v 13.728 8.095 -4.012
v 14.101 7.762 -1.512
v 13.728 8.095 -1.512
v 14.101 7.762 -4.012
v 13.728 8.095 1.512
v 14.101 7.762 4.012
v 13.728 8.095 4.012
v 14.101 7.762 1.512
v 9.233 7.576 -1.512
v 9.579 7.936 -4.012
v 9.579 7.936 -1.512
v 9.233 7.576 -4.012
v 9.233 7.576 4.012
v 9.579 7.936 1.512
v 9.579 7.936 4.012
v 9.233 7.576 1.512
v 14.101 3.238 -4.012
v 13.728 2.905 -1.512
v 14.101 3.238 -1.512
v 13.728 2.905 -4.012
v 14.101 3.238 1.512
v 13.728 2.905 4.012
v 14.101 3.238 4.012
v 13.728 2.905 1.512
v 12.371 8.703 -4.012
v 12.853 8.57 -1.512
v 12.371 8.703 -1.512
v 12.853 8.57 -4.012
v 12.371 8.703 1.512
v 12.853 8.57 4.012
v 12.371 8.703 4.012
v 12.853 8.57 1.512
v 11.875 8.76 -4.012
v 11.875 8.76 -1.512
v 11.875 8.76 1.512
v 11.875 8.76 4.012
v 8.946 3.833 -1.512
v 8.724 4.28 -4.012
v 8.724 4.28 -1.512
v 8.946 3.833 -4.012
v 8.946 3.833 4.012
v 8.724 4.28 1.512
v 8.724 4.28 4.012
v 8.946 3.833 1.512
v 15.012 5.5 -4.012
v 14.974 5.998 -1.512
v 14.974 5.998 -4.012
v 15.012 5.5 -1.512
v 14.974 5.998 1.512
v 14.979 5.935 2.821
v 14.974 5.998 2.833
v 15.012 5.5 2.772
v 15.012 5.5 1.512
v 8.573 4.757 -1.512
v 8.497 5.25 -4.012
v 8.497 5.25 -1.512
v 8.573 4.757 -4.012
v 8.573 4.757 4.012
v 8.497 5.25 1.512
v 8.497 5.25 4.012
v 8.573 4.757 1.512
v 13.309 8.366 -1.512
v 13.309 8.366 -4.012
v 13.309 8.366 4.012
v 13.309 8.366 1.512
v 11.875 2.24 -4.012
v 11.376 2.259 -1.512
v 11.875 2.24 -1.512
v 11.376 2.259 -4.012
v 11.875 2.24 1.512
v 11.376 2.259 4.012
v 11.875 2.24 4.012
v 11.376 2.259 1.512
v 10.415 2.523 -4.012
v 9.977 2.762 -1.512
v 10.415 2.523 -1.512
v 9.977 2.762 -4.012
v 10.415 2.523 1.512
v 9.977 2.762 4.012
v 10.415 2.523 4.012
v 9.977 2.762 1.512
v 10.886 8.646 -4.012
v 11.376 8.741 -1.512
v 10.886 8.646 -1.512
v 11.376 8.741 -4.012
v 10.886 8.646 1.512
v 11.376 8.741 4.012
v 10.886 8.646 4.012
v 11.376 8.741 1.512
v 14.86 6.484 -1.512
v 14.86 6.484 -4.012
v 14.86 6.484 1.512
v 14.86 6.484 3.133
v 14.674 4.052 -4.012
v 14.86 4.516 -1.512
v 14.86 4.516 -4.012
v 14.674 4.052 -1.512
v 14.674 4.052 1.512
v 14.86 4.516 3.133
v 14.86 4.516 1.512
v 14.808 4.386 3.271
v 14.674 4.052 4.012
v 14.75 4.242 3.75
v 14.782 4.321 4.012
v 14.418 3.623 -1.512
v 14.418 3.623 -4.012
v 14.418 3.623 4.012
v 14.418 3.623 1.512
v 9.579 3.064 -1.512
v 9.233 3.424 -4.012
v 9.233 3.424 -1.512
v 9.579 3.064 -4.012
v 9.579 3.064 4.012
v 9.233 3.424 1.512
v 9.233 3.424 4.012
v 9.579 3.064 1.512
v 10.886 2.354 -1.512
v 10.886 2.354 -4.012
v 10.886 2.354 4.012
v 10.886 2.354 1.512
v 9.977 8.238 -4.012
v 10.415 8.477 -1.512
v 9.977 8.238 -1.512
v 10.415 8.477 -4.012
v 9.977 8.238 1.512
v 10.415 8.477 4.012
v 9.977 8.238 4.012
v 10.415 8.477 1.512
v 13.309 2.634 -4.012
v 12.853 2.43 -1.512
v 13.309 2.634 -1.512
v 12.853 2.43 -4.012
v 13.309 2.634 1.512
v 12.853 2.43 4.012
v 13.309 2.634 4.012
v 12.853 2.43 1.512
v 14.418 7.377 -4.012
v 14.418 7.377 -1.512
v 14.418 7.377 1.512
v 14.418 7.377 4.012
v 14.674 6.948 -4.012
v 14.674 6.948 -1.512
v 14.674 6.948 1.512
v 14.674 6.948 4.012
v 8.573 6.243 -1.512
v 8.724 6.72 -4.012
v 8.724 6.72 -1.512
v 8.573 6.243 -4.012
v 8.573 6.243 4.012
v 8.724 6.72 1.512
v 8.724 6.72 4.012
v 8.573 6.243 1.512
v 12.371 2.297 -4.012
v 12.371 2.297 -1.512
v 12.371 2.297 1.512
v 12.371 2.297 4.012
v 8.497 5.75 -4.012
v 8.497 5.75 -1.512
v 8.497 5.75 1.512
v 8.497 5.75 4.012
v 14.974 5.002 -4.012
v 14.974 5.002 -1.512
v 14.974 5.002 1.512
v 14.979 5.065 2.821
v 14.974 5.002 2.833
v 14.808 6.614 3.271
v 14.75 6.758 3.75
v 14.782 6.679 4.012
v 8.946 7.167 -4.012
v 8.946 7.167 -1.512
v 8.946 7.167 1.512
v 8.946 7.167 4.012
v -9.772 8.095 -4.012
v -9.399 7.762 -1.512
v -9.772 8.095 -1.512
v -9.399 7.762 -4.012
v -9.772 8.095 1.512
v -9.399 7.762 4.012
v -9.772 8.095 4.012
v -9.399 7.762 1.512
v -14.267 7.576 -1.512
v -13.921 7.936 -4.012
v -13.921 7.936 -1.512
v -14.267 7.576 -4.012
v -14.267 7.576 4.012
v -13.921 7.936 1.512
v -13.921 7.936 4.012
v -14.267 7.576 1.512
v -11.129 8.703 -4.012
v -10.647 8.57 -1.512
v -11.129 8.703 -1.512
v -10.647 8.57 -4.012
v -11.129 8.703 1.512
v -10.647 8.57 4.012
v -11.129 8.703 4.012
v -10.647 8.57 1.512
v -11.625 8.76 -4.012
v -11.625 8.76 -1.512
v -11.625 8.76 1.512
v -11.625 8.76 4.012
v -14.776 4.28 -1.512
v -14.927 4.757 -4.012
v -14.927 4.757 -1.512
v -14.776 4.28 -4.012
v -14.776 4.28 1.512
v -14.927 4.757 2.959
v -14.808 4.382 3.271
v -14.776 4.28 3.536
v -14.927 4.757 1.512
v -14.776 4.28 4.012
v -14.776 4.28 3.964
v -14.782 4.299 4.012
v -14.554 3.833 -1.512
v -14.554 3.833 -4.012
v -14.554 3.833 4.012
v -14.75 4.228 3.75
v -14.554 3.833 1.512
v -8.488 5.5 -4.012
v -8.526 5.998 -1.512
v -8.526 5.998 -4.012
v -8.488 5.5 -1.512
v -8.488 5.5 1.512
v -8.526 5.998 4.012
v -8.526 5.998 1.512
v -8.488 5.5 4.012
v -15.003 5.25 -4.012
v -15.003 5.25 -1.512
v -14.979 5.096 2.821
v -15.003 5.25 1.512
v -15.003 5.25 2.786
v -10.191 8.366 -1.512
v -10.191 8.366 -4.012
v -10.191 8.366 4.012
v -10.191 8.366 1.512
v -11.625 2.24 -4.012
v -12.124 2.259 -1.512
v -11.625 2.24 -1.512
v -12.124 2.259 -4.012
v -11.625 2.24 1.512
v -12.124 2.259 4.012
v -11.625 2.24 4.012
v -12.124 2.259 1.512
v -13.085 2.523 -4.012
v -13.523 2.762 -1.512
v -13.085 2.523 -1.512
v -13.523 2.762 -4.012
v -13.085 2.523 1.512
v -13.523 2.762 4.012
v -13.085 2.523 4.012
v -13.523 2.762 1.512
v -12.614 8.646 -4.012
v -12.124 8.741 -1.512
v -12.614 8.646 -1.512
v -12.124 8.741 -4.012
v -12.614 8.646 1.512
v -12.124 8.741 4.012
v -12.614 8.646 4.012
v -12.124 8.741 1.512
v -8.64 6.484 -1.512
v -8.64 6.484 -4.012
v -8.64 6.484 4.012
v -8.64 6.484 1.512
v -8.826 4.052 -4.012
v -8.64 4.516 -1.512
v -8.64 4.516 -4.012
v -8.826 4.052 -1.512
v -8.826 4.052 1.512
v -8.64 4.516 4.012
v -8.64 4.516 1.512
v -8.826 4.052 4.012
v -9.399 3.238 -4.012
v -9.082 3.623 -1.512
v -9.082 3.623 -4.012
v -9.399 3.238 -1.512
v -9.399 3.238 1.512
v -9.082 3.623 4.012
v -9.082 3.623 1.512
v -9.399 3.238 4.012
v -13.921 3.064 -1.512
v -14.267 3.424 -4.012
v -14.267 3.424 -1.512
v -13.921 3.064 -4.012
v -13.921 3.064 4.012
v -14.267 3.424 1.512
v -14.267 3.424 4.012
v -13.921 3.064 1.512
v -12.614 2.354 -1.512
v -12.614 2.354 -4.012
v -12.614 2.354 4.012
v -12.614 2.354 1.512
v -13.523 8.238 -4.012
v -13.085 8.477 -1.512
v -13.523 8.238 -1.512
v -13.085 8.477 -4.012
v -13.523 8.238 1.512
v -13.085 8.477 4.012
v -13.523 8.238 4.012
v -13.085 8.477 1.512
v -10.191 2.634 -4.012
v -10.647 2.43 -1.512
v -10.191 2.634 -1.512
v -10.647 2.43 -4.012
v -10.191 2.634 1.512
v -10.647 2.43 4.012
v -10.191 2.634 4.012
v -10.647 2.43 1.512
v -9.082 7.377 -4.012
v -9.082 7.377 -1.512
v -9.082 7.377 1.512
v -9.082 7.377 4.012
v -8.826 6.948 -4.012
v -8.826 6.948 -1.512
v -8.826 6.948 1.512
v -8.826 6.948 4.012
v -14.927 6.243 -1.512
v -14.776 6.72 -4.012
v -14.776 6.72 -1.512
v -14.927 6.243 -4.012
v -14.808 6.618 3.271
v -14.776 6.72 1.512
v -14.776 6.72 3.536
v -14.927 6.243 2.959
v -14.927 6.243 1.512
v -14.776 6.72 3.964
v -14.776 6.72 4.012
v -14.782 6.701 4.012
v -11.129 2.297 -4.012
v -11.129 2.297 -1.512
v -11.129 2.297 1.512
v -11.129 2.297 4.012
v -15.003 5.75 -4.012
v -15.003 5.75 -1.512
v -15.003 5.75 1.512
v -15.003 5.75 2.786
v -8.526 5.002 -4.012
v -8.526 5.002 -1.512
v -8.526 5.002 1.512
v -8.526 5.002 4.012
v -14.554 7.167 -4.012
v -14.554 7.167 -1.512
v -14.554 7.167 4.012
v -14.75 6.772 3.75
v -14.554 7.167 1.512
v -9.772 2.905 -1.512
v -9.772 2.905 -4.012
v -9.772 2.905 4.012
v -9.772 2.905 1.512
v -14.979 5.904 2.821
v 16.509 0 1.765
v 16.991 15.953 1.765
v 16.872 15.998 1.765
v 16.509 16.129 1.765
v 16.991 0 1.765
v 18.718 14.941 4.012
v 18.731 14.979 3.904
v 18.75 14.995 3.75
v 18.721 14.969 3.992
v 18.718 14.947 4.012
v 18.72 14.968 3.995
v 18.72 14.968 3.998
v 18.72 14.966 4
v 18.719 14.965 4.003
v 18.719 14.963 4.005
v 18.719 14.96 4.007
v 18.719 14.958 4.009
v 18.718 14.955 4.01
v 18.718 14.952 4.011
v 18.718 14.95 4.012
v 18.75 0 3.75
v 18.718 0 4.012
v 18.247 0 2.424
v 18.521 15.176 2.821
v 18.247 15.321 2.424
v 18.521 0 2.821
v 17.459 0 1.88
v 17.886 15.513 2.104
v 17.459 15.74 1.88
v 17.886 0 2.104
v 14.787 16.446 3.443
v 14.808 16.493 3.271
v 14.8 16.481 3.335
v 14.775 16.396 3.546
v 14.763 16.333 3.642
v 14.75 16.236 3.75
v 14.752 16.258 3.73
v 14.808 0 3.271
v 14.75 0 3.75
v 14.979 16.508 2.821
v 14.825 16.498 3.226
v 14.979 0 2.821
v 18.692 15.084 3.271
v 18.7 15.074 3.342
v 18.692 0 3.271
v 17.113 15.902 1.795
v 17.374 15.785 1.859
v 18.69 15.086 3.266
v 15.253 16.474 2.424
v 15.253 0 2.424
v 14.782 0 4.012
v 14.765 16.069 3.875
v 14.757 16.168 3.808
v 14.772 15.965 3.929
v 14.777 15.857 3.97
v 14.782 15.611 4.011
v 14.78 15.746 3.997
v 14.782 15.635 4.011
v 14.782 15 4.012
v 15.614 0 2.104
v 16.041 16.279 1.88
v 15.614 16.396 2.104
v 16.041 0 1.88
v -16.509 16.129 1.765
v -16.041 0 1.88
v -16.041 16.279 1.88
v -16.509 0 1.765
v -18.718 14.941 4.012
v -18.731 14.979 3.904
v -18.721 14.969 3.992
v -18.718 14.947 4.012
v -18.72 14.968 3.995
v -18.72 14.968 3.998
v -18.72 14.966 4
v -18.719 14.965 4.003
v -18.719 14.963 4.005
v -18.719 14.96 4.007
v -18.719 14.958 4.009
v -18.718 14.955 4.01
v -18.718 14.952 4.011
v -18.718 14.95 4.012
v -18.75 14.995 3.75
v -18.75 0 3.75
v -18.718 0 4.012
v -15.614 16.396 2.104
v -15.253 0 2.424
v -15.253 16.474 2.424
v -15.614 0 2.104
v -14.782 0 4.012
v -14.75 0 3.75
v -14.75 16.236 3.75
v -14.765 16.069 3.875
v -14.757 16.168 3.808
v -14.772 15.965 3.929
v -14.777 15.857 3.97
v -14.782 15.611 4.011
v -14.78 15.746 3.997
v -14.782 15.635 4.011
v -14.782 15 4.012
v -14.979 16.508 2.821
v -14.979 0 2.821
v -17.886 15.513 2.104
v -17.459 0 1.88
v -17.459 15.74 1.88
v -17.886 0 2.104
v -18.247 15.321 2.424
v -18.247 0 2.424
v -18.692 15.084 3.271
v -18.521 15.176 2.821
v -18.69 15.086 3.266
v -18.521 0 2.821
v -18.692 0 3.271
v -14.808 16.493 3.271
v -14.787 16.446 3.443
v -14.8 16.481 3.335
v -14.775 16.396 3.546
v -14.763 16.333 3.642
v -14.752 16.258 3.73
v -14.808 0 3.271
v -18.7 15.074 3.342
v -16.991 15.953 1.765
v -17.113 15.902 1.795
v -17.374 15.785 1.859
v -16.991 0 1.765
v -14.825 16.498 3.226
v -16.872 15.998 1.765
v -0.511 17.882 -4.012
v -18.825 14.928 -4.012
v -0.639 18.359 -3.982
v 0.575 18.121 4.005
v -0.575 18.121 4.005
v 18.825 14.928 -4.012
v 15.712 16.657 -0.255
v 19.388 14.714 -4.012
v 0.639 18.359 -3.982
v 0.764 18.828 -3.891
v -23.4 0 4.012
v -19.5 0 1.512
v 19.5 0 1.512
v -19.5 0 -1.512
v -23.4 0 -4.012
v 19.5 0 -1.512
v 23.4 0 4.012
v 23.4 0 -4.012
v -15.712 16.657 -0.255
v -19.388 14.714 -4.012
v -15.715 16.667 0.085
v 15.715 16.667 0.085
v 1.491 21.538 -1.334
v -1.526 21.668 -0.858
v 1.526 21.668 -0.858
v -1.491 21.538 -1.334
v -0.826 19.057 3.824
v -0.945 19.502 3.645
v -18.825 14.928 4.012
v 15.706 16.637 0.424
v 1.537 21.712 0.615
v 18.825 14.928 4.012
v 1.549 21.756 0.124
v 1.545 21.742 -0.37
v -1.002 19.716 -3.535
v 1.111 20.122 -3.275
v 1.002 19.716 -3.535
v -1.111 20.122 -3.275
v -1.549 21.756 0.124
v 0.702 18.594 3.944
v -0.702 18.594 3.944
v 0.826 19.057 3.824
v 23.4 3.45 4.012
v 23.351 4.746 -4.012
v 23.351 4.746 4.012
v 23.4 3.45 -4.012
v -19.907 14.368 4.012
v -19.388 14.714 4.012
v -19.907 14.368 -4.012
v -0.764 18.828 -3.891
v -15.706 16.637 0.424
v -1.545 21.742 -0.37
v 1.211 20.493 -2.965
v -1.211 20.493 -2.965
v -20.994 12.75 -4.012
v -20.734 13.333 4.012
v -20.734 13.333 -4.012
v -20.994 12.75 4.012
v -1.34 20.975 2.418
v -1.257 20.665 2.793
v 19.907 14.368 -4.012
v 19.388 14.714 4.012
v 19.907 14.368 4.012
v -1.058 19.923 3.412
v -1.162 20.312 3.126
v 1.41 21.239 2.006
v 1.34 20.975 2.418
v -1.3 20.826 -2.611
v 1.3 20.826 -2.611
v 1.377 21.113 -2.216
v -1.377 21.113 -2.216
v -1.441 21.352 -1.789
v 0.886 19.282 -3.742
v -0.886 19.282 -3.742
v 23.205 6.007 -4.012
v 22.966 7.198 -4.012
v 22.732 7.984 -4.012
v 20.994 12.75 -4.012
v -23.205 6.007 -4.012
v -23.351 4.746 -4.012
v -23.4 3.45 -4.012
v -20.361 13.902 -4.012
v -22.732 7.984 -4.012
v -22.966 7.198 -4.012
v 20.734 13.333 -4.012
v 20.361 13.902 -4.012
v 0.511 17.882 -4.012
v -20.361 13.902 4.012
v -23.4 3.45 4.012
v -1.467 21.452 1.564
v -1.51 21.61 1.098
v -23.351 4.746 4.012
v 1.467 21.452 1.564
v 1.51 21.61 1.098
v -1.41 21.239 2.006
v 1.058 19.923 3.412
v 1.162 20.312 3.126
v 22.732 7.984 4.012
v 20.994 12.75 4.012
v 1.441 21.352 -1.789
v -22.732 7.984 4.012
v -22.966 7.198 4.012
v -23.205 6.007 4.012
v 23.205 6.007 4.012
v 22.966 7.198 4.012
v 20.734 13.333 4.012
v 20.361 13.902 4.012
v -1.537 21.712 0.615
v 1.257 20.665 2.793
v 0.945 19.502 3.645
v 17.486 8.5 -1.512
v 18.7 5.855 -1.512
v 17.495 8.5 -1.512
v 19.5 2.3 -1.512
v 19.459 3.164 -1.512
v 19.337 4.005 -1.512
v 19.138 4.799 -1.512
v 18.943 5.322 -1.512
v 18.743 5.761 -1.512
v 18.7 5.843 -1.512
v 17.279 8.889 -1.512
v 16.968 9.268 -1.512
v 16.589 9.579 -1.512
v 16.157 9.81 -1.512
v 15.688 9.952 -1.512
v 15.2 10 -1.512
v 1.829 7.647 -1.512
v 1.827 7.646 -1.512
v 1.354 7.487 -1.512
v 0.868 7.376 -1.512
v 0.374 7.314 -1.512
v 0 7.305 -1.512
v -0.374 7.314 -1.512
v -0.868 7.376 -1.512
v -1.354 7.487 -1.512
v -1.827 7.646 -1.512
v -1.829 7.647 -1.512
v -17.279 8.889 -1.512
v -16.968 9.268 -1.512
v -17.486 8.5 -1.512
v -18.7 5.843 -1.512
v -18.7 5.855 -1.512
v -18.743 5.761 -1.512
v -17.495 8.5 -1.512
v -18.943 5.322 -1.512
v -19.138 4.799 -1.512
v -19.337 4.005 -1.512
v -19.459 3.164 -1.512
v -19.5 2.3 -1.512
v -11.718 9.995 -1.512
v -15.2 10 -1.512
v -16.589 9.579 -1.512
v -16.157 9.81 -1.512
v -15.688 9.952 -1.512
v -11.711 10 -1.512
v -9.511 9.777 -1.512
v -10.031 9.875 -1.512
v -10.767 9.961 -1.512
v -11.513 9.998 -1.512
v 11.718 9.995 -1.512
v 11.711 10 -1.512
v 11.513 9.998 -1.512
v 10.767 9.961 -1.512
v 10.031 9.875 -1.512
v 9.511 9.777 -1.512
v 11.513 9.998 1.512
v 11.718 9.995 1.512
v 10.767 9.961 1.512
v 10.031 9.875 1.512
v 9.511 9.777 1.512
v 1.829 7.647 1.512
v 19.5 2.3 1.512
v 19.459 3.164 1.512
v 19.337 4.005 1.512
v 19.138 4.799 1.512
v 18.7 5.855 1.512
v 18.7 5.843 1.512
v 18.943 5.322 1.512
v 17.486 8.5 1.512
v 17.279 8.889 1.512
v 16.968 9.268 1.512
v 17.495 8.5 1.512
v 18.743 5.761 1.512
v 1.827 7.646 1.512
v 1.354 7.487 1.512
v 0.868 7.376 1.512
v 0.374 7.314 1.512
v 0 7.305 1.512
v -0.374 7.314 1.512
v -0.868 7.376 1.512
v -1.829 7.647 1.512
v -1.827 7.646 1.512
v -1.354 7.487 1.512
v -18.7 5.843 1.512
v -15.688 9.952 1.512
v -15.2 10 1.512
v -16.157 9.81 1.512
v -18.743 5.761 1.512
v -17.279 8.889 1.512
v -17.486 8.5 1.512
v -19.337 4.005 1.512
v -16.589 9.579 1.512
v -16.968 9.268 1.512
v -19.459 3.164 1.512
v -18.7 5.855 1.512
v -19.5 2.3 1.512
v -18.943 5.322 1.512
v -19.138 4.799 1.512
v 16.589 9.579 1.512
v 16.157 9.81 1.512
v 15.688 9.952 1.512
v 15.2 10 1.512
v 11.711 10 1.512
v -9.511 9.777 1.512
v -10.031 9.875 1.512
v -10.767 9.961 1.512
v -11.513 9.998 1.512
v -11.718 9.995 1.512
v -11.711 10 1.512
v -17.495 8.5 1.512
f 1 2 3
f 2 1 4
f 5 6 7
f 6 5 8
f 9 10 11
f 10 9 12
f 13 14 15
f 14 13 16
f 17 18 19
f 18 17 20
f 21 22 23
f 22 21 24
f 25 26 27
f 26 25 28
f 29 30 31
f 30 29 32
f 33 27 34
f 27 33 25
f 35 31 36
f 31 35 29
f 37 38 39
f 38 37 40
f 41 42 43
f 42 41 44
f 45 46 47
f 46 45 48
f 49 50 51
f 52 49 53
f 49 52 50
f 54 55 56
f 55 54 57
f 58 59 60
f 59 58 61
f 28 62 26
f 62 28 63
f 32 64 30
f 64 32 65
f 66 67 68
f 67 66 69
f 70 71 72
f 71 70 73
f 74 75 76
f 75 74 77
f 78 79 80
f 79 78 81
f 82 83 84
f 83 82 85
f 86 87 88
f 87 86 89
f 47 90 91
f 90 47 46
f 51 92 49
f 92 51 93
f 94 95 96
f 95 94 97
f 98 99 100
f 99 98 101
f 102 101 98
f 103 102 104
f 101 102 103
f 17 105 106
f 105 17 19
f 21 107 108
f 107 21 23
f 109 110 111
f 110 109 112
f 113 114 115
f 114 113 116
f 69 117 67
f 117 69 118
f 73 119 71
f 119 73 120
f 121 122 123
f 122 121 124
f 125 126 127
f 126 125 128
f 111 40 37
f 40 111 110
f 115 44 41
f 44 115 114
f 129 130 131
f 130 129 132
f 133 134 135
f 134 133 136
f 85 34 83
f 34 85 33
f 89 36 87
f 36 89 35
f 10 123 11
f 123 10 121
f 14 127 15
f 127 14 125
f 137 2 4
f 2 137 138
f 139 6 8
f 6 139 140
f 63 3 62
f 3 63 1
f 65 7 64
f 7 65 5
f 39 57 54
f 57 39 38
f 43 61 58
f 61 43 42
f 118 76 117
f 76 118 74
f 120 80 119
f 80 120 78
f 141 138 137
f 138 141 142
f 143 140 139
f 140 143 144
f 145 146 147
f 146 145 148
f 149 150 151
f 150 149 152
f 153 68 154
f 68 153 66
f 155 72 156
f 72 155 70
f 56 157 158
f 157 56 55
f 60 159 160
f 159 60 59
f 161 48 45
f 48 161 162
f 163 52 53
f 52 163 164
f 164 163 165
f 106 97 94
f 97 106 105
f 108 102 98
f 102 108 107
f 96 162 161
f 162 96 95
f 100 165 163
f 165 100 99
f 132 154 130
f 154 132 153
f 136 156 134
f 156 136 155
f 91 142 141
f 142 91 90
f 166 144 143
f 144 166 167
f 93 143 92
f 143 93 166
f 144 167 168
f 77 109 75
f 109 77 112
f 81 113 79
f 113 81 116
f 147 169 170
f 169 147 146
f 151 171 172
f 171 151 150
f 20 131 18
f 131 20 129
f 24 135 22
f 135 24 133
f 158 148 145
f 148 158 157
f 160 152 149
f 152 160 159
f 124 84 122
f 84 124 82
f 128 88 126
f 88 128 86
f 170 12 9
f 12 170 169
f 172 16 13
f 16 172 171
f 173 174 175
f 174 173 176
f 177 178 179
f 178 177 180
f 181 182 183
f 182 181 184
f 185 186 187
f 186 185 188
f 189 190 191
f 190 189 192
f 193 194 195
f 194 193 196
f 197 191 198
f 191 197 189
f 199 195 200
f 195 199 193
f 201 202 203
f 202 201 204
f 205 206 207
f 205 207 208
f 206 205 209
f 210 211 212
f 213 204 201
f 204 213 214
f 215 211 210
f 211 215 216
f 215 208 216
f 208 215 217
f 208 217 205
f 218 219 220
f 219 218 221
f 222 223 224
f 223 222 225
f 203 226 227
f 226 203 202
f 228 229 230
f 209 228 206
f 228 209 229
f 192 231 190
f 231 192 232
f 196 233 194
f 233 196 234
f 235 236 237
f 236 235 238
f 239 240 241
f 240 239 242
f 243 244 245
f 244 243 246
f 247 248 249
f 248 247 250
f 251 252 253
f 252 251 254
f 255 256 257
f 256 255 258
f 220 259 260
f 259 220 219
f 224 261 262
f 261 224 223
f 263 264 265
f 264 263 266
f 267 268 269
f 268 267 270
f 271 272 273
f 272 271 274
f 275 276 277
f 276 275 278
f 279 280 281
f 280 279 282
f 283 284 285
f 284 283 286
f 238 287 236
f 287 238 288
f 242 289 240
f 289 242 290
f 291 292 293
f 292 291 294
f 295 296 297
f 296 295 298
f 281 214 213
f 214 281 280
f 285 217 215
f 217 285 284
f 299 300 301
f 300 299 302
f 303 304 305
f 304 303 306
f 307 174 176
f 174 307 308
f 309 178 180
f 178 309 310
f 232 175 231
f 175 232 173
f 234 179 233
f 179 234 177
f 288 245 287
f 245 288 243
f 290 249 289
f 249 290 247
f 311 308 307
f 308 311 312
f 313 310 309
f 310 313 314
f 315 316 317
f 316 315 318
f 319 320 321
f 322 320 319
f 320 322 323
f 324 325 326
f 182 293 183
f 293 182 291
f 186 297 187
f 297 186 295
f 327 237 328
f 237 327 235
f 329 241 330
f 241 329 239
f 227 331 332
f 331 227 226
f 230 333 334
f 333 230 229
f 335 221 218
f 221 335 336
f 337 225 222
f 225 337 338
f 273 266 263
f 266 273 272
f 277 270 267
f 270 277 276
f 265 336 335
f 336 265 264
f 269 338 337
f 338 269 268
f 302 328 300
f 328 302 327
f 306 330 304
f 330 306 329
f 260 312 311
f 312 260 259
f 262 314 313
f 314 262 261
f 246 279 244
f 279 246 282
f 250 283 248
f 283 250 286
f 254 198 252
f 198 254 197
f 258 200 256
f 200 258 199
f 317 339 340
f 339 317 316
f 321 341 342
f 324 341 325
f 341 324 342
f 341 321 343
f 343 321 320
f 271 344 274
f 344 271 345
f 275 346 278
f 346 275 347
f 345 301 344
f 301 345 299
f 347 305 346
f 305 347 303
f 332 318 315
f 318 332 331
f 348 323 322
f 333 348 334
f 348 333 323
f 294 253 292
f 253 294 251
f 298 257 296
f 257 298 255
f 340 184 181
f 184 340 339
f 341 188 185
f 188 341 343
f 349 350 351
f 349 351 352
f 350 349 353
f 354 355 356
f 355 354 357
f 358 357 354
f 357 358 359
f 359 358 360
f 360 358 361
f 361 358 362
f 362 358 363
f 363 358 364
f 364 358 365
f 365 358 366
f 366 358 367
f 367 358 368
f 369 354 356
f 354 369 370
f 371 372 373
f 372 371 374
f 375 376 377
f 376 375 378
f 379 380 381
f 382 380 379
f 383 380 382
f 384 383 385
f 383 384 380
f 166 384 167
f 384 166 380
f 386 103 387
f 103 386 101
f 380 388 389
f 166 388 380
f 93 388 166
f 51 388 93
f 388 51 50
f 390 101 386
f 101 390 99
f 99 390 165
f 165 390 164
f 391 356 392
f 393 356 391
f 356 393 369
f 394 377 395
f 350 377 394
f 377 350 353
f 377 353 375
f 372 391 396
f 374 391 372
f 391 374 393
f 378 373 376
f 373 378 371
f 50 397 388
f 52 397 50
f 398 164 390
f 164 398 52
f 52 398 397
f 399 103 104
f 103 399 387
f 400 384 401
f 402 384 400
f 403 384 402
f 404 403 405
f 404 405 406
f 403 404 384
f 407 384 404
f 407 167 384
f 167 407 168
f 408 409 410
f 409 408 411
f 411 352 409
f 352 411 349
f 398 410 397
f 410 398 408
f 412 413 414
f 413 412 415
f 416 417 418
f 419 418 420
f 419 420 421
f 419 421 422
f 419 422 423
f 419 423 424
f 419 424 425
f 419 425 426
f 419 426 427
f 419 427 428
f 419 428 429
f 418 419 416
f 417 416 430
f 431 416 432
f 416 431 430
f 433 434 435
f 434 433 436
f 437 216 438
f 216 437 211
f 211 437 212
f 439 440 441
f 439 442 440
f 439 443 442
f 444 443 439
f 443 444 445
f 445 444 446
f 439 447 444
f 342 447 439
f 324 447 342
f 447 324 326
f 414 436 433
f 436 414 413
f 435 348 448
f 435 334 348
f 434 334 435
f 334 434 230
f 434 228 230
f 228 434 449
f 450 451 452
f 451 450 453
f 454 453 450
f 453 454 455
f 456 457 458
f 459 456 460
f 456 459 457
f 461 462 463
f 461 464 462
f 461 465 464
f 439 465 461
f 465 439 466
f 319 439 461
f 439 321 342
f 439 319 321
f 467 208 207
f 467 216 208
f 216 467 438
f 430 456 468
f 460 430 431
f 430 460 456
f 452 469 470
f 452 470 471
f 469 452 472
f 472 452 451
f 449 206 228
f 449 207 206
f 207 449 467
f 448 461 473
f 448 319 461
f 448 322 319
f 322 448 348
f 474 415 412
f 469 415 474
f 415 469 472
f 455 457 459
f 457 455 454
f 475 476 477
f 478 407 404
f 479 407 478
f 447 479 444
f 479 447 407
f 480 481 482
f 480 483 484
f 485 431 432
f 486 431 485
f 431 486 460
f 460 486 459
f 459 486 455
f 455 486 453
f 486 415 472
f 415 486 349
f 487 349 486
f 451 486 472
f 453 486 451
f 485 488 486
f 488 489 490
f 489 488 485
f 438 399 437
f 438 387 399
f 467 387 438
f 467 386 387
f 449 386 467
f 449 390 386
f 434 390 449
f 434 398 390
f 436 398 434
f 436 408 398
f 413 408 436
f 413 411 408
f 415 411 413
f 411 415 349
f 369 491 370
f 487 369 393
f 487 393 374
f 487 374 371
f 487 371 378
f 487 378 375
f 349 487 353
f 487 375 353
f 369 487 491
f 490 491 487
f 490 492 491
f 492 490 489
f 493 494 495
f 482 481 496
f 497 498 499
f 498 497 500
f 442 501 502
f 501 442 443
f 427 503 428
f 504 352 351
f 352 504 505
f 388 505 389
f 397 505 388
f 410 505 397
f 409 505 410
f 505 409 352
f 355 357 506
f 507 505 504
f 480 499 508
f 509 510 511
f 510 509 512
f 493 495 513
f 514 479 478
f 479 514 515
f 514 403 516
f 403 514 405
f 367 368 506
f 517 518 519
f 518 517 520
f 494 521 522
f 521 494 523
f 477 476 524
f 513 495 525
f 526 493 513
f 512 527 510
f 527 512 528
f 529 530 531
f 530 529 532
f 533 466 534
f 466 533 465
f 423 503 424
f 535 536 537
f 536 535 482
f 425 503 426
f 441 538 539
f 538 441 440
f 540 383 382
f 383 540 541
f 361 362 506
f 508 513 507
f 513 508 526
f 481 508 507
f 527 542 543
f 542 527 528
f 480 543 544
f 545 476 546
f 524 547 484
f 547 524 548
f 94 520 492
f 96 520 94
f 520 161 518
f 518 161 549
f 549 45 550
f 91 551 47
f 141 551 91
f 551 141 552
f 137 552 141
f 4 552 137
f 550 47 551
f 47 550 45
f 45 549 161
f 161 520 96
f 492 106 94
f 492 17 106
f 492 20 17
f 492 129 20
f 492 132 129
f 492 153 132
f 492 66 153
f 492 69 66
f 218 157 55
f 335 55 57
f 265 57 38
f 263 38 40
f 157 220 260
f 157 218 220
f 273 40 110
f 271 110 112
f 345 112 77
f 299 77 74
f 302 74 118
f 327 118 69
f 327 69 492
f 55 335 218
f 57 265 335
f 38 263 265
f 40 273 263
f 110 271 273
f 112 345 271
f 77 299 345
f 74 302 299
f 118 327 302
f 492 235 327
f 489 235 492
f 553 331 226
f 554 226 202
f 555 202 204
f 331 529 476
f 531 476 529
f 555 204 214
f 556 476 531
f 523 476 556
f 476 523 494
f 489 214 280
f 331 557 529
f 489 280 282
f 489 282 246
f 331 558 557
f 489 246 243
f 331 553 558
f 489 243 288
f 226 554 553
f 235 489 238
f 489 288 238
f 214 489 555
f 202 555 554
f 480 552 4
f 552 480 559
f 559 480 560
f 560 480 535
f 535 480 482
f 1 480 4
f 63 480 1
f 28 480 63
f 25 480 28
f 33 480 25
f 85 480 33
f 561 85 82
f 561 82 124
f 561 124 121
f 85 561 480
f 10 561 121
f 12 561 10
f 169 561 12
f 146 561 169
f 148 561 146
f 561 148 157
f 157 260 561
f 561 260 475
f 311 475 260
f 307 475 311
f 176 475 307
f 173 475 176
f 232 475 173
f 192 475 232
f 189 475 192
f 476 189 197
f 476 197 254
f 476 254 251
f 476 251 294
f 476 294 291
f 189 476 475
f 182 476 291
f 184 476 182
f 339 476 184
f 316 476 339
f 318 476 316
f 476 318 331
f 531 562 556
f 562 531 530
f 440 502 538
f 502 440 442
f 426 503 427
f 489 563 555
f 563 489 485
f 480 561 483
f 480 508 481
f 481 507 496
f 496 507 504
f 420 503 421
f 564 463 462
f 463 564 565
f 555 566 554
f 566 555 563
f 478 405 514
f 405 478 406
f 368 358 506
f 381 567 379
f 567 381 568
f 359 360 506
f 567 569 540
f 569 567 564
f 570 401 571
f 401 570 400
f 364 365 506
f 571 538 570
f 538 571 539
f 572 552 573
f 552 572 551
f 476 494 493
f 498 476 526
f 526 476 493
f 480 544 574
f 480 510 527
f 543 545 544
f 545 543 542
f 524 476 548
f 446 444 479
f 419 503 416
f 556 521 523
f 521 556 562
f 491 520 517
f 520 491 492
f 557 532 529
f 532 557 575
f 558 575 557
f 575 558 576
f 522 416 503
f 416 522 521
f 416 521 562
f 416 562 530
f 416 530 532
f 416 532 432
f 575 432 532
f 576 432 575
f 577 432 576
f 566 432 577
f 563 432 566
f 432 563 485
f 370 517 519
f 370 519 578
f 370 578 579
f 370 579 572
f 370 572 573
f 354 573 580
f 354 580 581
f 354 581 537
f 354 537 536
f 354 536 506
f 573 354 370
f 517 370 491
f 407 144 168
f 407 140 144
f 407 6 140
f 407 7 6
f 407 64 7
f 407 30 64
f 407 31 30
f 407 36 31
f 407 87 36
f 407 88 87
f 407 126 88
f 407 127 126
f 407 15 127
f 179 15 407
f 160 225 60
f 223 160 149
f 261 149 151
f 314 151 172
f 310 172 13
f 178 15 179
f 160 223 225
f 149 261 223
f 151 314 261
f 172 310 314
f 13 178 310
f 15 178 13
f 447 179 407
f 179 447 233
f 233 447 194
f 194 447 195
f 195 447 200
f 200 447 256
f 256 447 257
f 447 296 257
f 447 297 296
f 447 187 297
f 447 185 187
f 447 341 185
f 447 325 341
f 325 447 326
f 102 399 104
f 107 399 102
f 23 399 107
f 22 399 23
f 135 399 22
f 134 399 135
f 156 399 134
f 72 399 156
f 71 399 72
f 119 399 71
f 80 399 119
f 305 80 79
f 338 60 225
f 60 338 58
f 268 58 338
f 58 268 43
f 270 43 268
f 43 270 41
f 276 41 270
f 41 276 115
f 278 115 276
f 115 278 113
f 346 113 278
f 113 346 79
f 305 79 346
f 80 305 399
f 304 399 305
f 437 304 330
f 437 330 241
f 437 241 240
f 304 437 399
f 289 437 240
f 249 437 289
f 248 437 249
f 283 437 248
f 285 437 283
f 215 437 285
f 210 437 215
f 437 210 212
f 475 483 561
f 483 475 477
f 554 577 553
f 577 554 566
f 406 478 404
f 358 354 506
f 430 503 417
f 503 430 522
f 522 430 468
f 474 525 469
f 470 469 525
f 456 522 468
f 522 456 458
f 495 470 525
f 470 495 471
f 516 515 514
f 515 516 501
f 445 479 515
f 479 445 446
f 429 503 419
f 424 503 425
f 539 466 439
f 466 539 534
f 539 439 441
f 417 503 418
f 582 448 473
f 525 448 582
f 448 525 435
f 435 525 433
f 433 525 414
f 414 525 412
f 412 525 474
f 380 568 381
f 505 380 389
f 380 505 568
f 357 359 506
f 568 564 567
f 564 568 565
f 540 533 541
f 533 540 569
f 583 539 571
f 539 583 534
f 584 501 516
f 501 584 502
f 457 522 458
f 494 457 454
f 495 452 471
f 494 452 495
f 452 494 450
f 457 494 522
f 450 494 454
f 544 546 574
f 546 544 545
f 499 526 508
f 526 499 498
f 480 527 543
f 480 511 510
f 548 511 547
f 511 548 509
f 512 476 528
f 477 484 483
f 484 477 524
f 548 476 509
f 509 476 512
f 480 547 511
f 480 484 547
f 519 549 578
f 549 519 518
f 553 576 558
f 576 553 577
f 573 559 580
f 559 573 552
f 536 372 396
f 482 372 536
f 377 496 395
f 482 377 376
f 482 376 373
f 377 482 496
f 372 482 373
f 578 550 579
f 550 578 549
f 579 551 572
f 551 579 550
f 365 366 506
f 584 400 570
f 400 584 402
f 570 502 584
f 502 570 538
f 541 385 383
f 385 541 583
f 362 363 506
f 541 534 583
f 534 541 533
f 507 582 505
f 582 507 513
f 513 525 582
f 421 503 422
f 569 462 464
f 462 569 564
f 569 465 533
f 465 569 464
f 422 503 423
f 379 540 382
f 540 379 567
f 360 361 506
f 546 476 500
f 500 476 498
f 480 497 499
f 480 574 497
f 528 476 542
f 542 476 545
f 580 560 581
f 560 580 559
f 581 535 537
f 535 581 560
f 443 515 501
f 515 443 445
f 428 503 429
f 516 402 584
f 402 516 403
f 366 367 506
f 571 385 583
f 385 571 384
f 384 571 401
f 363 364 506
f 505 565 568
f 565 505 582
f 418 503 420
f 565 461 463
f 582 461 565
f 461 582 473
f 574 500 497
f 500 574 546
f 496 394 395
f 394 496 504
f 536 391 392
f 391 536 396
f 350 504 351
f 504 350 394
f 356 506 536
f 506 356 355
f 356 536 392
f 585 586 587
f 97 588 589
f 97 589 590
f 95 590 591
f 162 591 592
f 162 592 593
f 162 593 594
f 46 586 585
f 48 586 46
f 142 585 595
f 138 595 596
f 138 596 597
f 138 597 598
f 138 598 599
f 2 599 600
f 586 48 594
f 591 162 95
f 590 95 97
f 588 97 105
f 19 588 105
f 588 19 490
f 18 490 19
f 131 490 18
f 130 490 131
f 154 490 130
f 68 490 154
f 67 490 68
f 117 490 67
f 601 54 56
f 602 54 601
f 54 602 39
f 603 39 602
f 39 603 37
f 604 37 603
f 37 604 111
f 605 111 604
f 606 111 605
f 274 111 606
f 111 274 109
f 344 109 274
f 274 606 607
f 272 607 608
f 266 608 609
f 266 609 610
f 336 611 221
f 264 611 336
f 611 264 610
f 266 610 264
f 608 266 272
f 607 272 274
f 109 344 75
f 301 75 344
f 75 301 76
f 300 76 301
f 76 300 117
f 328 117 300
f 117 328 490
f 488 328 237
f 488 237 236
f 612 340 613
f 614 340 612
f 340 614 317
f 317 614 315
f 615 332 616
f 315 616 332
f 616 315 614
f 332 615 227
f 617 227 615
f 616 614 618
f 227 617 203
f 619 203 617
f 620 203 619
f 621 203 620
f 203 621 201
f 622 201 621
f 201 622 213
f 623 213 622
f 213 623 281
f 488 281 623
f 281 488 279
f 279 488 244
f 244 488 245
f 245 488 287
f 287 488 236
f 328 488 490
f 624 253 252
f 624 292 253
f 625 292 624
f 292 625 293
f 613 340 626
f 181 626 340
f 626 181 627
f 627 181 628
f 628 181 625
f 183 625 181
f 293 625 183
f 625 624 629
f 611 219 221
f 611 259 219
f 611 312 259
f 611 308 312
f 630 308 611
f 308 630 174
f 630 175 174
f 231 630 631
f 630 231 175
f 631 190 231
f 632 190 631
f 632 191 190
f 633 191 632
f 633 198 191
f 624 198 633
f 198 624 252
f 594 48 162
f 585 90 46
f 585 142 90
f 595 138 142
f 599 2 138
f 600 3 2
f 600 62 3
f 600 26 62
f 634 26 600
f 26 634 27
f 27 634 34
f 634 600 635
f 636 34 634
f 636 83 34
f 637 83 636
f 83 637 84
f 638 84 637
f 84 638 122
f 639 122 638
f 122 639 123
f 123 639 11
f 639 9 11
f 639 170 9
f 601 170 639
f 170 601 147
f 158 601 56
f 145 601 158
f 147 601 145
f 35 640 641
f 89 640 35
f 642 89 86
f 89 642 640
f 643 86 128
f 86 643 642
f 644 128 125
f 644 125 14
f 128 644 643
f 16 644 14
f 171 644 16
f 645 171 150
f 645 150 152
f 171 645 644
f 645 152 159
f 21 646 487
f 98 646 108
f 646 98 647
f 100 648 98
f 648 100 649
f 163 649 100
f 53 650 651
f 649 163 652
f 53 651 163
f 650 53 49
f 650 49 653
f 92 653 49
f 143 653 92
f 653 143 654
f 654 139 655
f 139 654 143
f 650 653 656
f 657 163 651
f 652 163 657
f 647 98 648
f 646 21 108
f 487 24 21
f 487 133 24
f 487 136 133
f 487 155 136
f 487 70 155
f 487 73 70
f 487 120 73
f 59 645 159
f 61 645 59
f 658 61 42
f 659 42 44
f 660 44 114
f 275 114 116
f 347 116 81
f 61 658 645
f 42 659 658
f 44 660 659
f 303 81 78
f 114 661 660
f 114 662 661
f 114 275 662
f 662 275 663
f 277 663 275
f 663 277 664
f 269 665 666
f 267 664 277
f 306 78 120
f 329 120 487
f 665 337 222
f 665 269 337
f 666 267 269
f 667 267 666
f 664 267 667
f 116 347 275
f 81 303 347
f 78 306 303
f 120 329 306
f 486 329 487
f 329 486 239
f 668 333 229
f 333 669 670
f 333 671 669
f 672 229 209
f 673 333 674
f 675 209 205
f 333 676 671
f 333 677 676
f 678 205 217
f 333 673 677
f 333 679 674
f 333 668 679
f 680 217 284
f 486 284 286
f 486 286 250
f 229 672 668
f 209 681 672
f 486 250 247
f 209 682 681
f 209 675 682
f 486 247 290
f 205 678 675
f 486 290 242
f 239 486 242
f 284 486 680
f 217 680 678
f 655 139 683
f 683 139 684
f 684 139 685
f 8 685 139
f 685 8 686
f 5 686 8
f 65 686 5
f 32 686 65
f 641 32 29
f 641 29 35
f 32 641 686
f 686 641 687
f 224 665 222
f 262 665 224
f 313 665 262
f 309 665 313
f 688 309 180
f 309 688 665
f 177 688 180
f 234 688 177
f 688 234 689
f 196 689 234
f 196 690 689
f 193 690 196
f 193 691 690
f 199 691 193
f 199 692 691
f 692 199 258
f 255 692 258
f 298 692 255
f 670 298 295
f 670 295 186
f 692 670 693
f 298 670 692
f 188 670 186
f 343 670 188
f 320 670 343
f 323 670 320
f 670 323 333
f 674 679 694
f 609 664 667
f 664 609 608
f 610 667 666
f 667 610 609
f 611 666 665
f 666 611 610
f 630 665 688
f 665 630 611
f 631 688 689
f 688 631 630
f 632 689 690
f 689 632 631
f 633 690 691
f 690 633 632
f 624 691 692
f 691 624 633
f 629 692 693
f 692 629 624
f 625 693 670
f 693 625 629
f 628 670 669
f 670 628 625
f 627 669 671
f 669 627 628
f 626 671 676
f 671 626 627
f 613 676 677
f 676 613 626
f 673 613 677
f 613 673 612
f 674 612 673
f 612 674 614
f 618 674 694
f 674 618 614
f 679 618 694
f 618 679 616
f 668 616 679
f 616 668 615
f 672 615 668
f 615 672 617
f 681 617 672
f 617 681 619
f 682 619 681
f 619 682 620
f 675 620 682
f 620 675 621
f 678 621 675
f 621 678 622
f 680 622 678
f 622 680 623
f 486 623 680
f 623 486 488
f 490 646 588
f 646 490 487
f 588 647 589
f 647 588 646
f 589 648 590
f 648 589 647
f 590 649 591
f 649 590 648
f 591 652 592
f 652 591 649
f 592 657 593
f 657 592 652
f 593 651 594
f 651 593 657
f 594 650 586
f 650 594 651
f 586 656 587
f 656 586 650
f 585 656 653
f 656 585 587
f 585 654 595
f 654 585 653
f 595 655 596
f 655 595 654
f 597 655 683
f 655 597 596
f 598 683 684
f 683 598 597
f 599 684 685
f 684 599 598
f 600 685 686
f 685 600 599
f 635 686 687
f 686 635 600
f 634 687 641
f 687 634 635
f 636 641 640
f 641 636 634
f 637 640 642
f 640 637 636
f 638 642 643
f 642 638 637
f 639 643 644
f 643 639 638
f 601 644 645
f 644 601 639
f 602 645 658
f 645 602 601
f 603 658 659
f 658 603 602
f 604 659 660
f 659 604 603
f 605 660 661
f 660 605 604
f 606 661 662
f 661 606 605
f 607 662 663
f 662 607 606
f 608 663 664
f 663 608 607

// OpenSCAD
standoff_width = 6;
plate_thickness = 2.5;
chin_thickness = 2.5;
chin_angle = 15;
camera_bracket_thickness = 4;
 
$fs = $preview ? 1 : 0.5;
$fa = $preview ? 10 : 5;

anti_warp = .15;
filament_width = 1.75;

function anti_warp_widen(v) = v + (filament_width * anti_warp) * 2;
function anti_warp_shrink(v) = v - (filament_width * anti_warp) * 2;

module base_model() {
	difference() {
		square([19.5, 12]);
		translate([0, 2]) {
			translate([0, 10.3]) circle(d = 10);
			translate([1.3, 5.5]) rotate([0, 0, 15.5]) square([15, 10]);
			translate([0, 8]) square([20, 5]);
			translate([19.5, 2.1]) rotate([0, 0, 90 - 65.5]) square([5, 10]);
			translate([15.2, 5.5]) {
				difference() {
					translate([0, 1]) square([2.5, 2]);
					circle(d = 5);
				}
			}
			translate([11.7, 3]) {
				difference() {
					rotate([0, 0, 53]) square([4, 5]);
					scale([1.5, 1]) circle(d = 10);
				}
			}
			translate([16.5, 0.3]) {
				scale([1, 1.75]) difference() {
					translate([2.2, 0]) square([3, 3]);
					circle(d = 6);
				}
			}
		}
	}
}

module standoff_hole(height) {
	assert(height > 0);
	cylinder(h = height, d = anti_warp_widen(standoff_width), center = true);
}

module screwholepos(mirror = false, offset = 0) {
	translate([mirror ? -11.75 - offset : 11.75 + offset, 5.5])
		children();
}

module standoffs(height) {
	assert(height > 0);
	screwholepos() standoff_hole(height);
	screwholepos(true) standoff_hole(height);
}

module model(height) {
	assert(height > 0);
	linear_extrude(height, center = true) {
		base_model();
		mirror([1, 0]) base_model();
	}
}

module frontbumper() {
	rotate([0, 90]) cylinder(h = 15, d2 = anti_warp_widen(chin_thickness * 2 + plate_thickness), d1 = anti_warp_widen(chin_thickness * 2));
}
	
module frontbumpers() {
	translate([15, 0]) rotate([0, 0, 180 - chin_angle]) frontbumper();
	translate([-15, 0]) rotate([0, 0, 180 + chin_angle]) mirror([1, 0]) frontbumper();
}

module camera_bracket_spacer(width) {
	assert(width > 0);
	rotate([90, 0]) cylinder(d = width, h = 30, center = true);
}

module camera_bracket_spacers(width) {
	assert(width > 0);
	screwholepos(false, width / 2 + standoff_width / 2) camera_bracket_spacer(width);
	screwholepos(true, width / 2 + standoff_width / 2) camera_bracket_spacer(width);
}

module main() {
	difference() {
		hull() {
			scale([1.2, 1.5, 1]) model(anti_warp_widen(chin_thickness * 2 + plate_thickness));
			translate([0, 14, 0]) frontbumpers();
		}
		model(anti_warp_widen(plate_thickness));
		standoffs(anti_warp_widen(chin_thickness * 2 + plate_thickness) * 2);
		translate([0, 0, chin_thickness + plate_thickness / 2]) camera_bracket_spacers(camera_bracket_thickness);
	}
}

main();
